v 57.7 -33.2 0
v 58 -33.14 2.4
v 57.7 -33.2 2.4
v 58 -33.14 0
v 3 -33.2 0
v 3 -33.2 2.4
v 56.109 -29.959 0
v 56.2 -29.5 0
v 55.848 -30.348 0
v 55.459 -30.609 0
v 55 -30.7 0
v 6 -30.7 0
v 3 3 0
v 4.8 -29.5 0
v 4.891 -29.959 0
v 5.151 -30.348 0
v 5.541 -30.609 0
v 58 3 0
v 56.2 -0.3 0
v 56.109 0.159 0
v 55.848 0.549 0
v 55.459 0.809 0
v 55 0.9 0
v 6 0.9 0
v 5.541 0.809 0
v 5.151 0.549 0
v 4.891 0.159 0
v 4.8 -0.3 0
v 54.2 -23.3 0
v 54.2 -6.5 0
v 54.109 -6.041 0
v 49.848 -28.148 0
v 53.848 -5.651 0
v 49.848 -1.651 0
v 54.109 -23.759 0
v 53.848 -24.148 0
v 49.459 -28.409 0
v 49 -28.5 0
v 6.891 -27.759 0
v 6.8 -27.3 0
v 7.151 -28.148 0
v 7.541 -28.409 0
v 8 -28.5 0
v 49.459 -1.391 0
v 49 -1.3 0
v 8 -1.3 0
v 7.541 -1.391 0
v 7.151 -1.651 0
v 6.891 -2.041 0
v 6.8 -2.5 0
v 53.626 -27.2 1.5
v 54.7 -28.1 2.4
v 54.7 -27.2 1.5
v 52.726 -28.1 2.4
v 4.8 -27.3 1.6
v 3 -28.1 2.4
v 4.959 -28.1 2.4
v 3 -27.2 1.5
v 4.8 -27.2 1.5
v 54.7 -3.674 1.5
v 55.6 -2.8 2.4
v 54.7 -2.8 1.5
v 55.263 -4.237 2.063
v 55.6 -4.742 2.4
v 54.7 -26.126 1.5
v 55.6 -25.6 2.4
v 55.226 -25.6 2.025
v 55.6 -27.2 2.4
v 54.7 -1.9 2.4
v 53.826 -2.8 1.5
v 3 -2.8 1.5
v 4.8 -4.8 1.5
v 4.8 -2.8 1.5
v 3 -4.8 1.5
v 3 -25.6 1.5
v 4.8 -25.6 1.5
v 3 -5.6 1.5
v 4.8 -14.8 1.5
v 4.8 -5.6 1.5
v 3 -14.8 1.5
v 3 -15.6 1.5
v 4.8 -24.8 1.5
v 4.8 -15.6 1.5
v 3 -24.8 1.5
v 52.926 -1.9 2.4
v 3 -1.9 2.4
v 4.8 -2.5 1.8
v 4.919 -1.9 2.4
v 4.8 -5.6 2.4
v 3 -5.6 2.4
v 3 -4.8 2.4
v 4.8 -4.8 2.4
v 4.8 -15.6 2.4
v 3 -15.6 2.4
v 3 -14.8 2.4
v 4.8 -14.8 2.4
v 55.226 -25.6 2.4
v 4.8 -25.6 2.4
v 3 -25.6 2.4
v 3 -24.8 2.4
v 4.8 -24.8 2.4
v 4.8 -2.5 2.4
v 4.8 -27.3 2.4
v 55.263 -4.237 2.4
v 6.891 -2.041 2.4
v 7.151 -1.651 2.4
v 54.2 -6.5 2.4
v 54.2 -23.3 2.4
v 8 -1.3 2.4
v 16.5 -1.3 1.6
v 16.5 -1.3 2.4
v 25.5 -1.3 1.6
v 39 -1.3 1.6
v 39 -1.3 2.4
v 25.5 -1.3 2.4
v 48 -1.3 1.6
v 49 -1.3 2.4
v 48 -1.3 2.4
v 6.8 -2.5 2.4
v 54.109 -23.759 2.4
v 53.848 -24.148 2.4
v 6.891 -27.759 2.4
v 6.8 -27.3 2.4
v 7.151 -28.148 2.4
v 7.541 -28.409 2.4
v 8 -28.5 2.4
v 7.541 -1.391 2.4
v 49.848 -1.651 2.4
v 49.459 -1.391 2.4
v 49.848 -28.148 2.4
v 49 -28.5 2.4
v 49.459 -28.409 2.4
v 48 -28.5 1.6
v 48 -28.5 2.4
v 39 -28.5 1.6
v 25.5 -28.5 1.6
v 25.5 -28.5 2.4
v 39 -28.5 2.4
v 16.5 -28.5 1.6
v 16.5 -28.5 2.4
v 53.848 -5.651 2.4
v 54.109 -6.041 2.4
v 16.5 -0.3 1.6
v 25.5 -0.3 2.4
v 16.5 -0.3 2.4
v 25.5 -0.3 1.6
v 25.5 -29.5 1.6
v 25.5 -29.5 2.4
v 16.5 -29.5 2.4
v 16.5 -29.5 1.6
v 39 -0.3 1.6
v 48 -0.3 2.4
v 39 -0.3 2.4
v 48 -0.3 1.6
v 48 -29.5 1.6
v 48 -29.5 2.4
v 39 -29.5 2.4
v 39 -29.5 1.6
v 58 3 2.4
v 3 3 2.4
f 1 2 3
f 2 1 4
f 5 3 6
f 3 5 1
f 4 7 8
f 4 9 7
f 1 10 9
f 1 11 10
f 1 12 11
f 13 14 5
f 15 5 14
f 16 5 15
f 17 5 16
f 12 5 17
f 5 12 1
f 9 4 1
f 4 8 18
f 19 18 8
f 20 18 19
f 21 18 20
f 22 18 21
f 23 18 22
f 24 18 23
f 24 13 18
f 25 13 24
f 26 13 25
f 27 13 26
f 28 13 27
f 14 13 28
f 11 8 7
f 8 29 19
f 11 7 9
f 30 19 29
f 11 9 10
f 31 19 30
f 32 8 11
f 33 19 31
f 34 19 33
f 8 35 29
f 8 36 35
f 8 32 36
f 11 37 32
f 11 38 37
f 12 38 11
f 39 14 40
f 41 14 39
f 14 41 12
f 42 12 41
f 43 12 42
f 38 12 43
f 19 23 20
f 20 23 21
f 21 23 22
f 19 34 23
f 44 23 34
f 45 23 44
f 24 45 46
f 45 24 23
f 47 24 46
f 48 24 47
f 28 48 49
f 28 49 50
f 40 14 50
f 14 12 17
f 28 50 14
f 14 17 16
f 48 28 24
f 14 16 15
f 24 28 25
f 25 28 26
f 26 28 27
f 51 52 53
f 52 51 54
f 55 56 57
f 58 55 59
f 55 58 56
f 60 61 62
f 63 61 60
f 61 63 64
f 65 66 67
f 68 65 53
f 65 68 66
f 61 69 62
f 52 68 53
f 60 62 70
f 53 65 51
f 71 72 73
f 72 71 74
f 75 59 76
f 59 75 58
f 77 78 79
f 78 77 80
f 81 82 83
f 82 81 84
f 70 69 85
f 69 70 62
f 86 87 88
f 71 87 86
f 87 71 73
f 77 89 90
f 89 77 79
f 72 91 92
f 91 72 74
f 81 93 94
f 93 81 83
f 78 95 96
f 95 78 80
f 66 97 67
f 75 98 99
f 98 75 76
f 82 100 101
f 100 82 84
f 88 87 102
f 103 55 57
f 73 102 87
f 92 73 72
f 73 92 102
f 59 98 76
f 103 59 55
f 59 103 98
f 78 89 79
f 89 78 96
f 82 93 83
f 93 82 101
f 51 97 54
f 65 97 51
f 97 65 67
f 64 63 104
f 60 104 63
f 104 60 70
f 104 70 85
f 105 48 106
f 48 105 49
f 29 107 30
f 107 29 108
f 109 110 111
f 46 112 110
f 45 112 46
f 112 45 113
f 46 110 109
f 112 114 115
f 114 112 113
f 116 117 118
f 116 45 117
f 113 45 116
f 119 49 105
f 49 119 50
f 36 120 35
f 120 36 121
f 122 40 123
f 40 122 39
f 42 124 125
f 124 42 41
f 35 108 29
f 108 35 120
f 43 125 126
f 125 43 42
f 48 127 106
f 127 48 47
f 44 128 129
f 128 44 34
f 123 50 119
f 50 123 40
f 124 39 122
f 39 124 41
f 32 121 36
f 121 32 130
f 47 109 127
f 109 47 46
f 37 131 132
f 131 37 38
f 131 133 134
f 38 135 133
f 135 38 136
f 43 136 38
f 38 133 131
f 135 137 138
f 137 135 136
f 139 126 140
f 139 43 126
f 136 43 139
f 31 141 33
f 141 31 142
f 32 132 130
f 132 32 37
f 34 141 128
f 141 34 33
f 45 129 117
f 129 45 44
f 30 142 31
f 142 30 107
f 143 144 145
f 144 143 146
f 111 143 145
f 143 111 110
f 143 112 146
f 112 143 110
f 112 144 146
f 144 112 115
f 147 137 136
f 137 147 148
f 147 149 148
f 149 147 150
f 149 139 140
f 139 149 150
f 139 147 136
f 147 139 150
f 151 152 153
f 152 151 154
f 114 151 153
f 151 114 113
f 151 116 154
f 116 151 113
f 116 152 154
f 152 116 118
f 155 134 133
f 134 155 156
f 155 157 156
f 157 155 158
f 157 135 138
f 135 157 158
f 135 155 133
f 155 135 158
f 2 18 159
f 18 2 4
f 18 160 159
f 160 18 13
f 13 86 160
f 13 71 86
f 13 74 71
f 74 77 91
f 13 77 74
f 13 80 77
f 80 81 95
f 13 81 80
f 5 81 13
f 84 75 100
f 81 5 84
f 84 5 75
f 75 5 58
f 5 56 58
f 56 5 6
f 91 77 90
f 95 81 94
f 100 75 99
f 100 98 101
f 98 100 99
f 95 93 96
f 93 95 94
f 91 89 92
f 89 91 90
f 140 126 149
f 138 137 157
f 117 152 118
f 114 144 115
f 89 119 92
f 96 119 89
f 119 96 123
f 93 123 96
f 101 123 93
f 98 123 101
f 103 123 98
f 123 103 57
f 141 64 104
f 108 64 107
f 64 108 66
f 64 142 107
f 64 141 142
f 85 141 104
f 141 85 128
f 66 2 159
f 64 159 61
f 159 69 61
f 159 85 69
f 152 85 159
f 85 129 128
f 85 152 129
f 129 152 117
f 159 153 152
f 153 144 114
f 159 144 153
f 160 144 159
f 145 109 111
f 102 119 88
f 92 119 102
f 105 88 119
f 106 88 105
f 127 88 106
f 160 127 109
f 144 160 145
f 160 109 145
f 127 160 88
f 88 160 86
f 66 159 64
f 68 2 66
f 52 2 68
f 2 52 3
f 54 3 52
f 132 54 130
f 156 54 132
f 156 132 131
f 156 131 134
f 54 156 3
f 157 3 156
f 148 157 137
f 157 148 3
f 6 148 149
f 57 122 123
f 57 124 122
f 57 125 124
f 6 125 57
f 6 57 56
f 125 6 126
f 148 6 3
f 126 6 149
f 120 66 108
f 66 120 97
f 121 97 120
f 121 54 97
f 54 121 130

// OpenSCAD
// file: params.scad
depth=40;

xt60_loc = [ [-47,-depth, 15], [-27,-depth, 15], [-7,-depth, 15] ];
plug_loc = [5,-depth, 1.5];

margin = 0.2;

plug_margin=0.2;

xt60_margin = 0.25;
xt60m_margin = 1;

xt60_thickness = 1.5;
plug_thickness = 2;

case_w_inner = 115+2*margin;
case_h_inner = 30+2*margin;
case_thickness = 3;
case_front_thickness = 1.5;
case_w = case_w_inner + 2*case_thickness;
case_d = depth + 40;
case_h = case_h_inner + 2*case_thickness;

case_dim = [case_w, case_d, case_h];
case_dim_inner = [case_w_inner, case_d, case_h_inner];
case_dim_inside = [(case_w_inner+case_w)/2, case_d, (case_h_inner+case_h)/2];

bump_corner=(case_thickness+margin)*2.5;

front = [0,-1, 0];
bottom_front = [0,-1,-1];

grid_rows = 3;
grid_cols = 11;
grid_pitch = 10;
grid_thickness = .8;
grid_depth=12;
grid_xoff =-2;

screw_thread=3;
screw_hole_r=(screw_thread*.9)/2;
screw_hole_border=2;

mw_lrs_gap_d = 18.5;
// file: xt.scad
e=.001;
$fn=16;

xt60_w=15.7;
xt60_h=8;
xt60f_d = 15.7;
xt60f_base_d = 8;
xt60_combined_d=24.1;
xt60_pitch=7;
xt60_chamfer=2.5;
xt60f_pin_d=5.7;
xt60m_pin_d=4.7;
xt60_pin_w=4.5;
xt60_hole_w=4.5;
xt60_corner=.5;

module xt_pins(width, height, pitch)
{
	for (p=[-pitch/2, pitch/2])
	translate([p,0,0])
	cylinder(h=height, r=width/2);
}

module xt_base(w, h, d, chamfer, corner, margin=0, e=0)
{
	w = w-2*corner;
	h = h-2*corner;
	r = corner+margin;
	translate([0,0,-e])
    linear_extrude(d+2*e)
	hull()
    for (p=[ [w/2,-h/2],
	         [-w/2+chamfer, -h/2],
	         [-w/2, -h/2+chamfer],
	         [-w/2, h/2-chamfer],
	         [-w/2+chamfer, h/2],
	         [w/2, h/2]
	])
	translate(p)
	circle(r);
}

module xt60_combined_shell_cutout(margin=0,f_margin=-1,m_margin=-1, e=0)
{
	b=1; 
	xt_base(xt60_w, xt60_h, xt60_combined_d, xt60_chamfer, xt60_corner, margin, e);
	if (f_margin > margin)
	hull()
	{
		xt_base(xt60_w, xt60_h, xt60f_base_d, xt60_chamfer, xt60_corner, f_margin, e);
		translate([0,0,xt60f_base_d])
		xt_base(xt60_w, xt60_h, f_margin-margin, xt60_chamfer, xt60_corner, margin, e);
	}
	if (m_margin > margin)
	hull()
	{
		translate([0,0,xt60f_base_d-(m_margin-margin)])
		xt_base(xt60_w, xt60_h, m_margin-margin, xt60_chamfer, xt60_corner, margin, e);
		translate([0,0,xt60f_base_d])
		xt_base(xt60_w, xt60_h, xt60_combined_d-xt60f_base_d, xt60_chamfer, xt60_corner, m_margin, e);
	}
}


module xt60_combined_cutout(margin=0,f_margin=-1,m_margin=-1, e=0)
{
	b=1; 
	xt60_combined_shell_cutout(margin,f_margin,m_margin, e);

	translate([0, 0, -xt60f_pin_d-margin])
	xt_pins(xt60_pin_w+margin*2, xt60f_pin_d+b+margin, xt60_pitch);

	translate([0, 0, xt60_combined_d-b])
	xt_pins(xt60_pin_w+margin*2, xt60m_pin_d+b+margin, xt60_pitch);
}

module xt60f_cutout(margin=0,f_margin=-1,m_margin=-1,e=0)
{
	translate([0,0,-xt60f_d])
	xt60_combined_cutout(margin,f_margin,m_margin,e);
}

module xt60f_shell_cutout(margin=0,f_margin=-1,m_margin=-1,e=0)
{
	translate([0,0,-xt60f_d])
	xt60_combined_shell_cutout(margin,f_margin,m_margin,e);
}

module xt60f()
{
	b=1;
	translate([0,0,-xt60f_d])
	{
		xt_base(xt60_w, xt60_h, xt60f_base_d, xt60_chamfer, xt60_corner, 0, e);

		translate([0,0,b])
		difference()
		{
			xt_base(xt60_w-2*xt60_corner, xt60_h-2*xt60_corner, xt60f_d-b, xt60_chamfer, xt60_corner, 0, e);
			xt_pins(xt60_hole_w, xt60f_d, xt60_pitch);

		}

		difference()
		{
			translate([0, 0, -xt60f_pin_d])
			xt_pins(xt60_pin_w, xt60f_pin_d+b, xt60_pitch);

			translate([0, 0, -xt60f_pin_d-b])
			xt_pins(xt60_pin_w*.8, xt60f_pin_d+b, xt60_pitch);
		}
	}
}

xt60f();
%xt60f_cutout(margin=.4,m_margin=1,e=e);
// file: power_shield.scad
use <utils.scad>
use <grid.scad>

use <mw_lrs.scad>
use <powerplug.scad>
use <xt.scad>

$fn=16;
e=.001;


margin=.15;
shield_thickness=1.;
shield_bottom=.6;

border_w=51;
border_h=31.2;
border_d=3.5;

w=47;
h=26.8;
d=22;
chamf=4;

corner=1;

module plug_keepout(margin=0, depth=39, e=0)
{
	$fn=16;

	d = .1+e;
	border_w = border_w-2*corner;
	border_h = border_h-2*corner;
	w = w-2*corner;
	h = h-2*corner;
	r = corner+margin;
	off = 16.5;

	color([.3,.3,.3])
	translate([corner,depth-.1,corner])
	rotate([90,0,0])
	{
		translate([(border_w-w)/2,0,-d])
		linear_extrude(d+e)
		hull()
		for (p=[ [off, 0],
		         [off, h],
		         [w-chamf, h],
		         [w, h-chamf],
		         [w, chamf],
		         [w- chamf, 0],
		])
		translate(p)
		circle(r);
	}
}

module plug_hull(margin, d, e=0)
{
	hull()
	{
		difference()
		{
		plug(margin=margin, extra_depth=5+shield_bottom);
		translate([-10,-10,-10])
		cube([100, 30, 100]);
		}
		plug_keepout(margin=margin, depth=d, e=0);
	}
	plug_keepout(margin=margin, depth=d, e=e);
	
}

inner_w=.8;

module power_shield()
{
color("red")
	union()
	{
	difference()
	{
		union()
		{
			plug_hull(margin=margin+shield_thickness, d=39);
		}
		union()
		{
		plug_hull(margin=margin, d=38, e=2);
		}
	}

	intersection()
	{
		plug_hull(margin=margin+shield_thickness/2, d=38.5, e=2);
		difference()
		{
			union()
			{
				translate([(border_w-w)/2+8.5-inner_w/2, 22, h/2-4-inner_w/2])
				cube([inner_w, 20, 20]);

				translate([(border_w-w)/2+8.5, 22, h/2-4-inner_w/2])
				cube([9., 17, inner_w]);

				translate([(border_w-w)/2+17.5-inner_w/2, 22, h/2-4-inner_w/2])
				cube([inner_w, 17, 10]);

				translate([(border_w-w)/2+15-inner_w/2, 38.4, h/2-4-inner_w/2])
				cube([2.5, shield_bottom, 10]);

				for (y=[0,h])
				for (x=[0,w-2])
				translate([(border_w-w)/2+x-5/sqrt(2)-inner_w/2, 22, y])
				rotate([0,45,0])
				cube([5,1,5]);

			}
			translate([(border_w-w)/2+6.5-inner_w/2, 21, h/2-6/2-inner_w/2])
			cube([5, 2, 5.5]);
		}
	}
}
}

rotate([-90,0,0])
translate([0,-39,0])
{
	power_shield();

	//preview()
	//plug();
}
// file: powerplug.scad
e=0.001;

border_w=51;
border_h=31.2;
border_d=3.5;

w=47;
h=26.8;
d=22;
chamf=4;

corner=1;

module plug(margin=0, extra_depth=0)
{
	$fn=16;

	d = d+extra_depth;
	border_w = border_w-2*corner;
	border_h = border_h-2*corner;
	w = w-2*corner;
	h = h-2*corner;
	r = corner+margin;

	color([.3,.3,.3])
	translate([corner,0,corner])
	rotate([90,0,0])
	{
		translate([0,(h-border_h)/2,0])
		linear_extrude(border_d+margin)
		hull()
		for(p=[ [0, 0],
		        [0, border_h],
		        [border_w, border_h],
		        [border_w, 0]
		])
		translate(p)
		circle(r);

		translate([(border_w-w)/2,0,-d])
		linear_extrude(d+e)
		hull()
		for (p=[ [0, 0],
		         [0, h],
		         [w-chamf, h],
		         [w, h-chamf],
		         [w, chamf],
		         [w- chamf, 0],
		])
		translate(p)
		circle(r);
	}
}

module plug_latch(margin=0)
{
	rotate([90,0,0])
	rotate([0,90,0])
	linear_extrude(9)
	{
		polygon([ [0, -1], [0, 1+margin], [9, margin]]);
	}
}

module plug_latches(margin=0)
{
	for (x=[9.5,32])
	for (y_flip=[-1, 1])
	translate([(border_w-w)/2+x,1.6, h/2])
	scale([1,1,y_flip])
	translate([0,0,h/2])
	plug_latch(margin);
}


module plug_latches_keepout(margin=0, extra_depth=0)
{
	for (x=[9.5,32])
	for (y_flip=[-1, 1])
	translate([(border_w-w)/2+x,1.6, h/2])
	scale([1,1,y_flip])
	translate([0,0,h/2])
	cube([9,d+extra_depth-1.6+e,1+margin]);
}

plug();

plug_latches();

#plug_latches_keepout();

%plug(margin=.3);
// file: mw_lrs.scad
e=.001;
$fn=16;

mw_lrs_w=115;
mw_lrs_h=30;
mw_lrs_d=215;


mw_lrs_holes_pitch_d  = 150;
mw_lrs_holes_pitch_w  = 50;
mw_lrs_holes_height_h = 12.5;

mw_lrs_gap_h = 23;
mw_lrs_gap_d = 18.5;

mw_lrs_case_thickness = 1.6;

m4_thread = 4;

mw_lrs_screw_terminal_x=8.5;
mw_lrs_screw_terminal_w=88;
mw_lrs_screw_terminal_d=15;
mw_lrs_screw_terminal_h=15;
mw_lrs_screw_terminal_pitch = 9.5;
mw_lrs_screw_terminal_gap_w = 8;
mw_lrs_screw_terminal_gap_d = 14;
mw_lrs_screw_terminal_gap_z = 7;
mw_lrs_screw_terminal_gap_h = 6;

module mw_lrs_side_holes()
{
	translate( [0, 0, mw_lrs_holes_height_h] )
	for( r = [ 0, 180 ] )
	rotate( [0, r, 0] )
	for( y = [ (mw_lrs_d-mw_lrs_holes_pitch_d)/2, (mw_lrs_d+mw_lrs_holes_pitch_d)/2 ] )
	translate( [-mw_lrs_w/2, y, 0] )
	rotate( [0, 90, 0] )
	children();
}

module mw_lrs_bottom_holes()
{
	for( x = [ -mw_lrs_holes_pitch_w/2, mw_lrs_holes_pitch_w/2 ] )
	for( y = [ (mw_lrs_d-mw_lrs_holes_pitch_d)/2, (mw_lrs_d+mw_lrs_holes_pitch_d)/2 ] )
	translate( [x, y, 0] )
	children();
}

module mw_lrs_holes()
{
	mw_lrs_side_holes() children();
	mw_lrs_bottom_holes() children();
}

module mw_lrs_screw_terminal()
{
	colors = [
		"red", "red", "red",
		"black", "black", "black",
		"green", "blue", "brown",
	];
	b=1;
	translate([mw_lrs_screw_terminal_x, mw_lrs_case_thickness, mw_lrs_h-mw_lrs_gap_h-e])
	{
		difference()
		{
			translate([-mw_lrs_screw_terminal_w/2, 0, 0])
			cube([mw_lrs_screw_terminal_w, mw_lrs_screw_terminal_d, mw_lrs_screw_terminal_h+e]);
			for (i=[0:8])
			translate([(i-4)*9.5-mw_lrs_screw_terminal_gap_w/2, -b, mw_lrs_screw_terminal_gap_z])
			cube([mw_lrs_screw_terminal_gap_w, mw_lrs_screw_terminal_gap_d+b, mw_lrs_screw_terminal_gap_h]);
		}

		for (i=[0:8])
		translate([(i-4)*9.5-mw_lrs_screw_terminal_gap_w/2, -0, mw_lrs_screw_terminal_h])
		color(colors[i])
		cube([mw_lrs_screw_terminal_gap_w,mw_lrs_screw_terminal_gap_d,.1]);

	}
}

module mw_lrs_vents()
{
	b=1;
	hole=4;
	for (y = [36, 44, 52])
	for (i = [-1, 1])
	hull()
	{
		translate([i*(19/2+hole/2), y, mw_lrs_h-mw_lrs_case_thickness-b])
			cylinder(mw_lrs_case_thickness+2*b, r=hole/2);

		translate([i*(19/2+hole/2+33), y, mw_lrs_h-mw_lrs_case_thickness-b])
			cylinder(mw_lrs_case_thickness+2*b, r=hole/2);
	}

	translate([-mw_lrs_w/2+36.7, mw_lrs_d-47.45,mw_lrs_h-mw_lrs_case_thickness-b])
		cylinder(mw_lrs_case_thickness+2*b, r=50/2);
}

module mw_lrs_vents_keepout(h, margin=0)
{
	b=1;
	hole=4;
	hull()
	for (y = [36, 44, 52])
	for (i = [-1, 1])
	{
		translate([i*(19/2+hole/2), y, mw_lrs_h-b])
			cylinder(h+b, r=hole/2+margin);

		translate([i*(19/2+hole/2+33), y, mw_lrs_h-b])
			cylinder(h+b, r=hole/2+margin);
	}

	translate([-mw_lrs_w/2+36.7, mw_lrs_d-47.45,mw_lrs_h-b])
		cylinder(h+b, r=50/2);
}

module mw_lrs()
{
	b=1; 

	union()
	{
		color([.75,.75,.75])
		difference()
		{

			translate([-mw_lrs_w/2,0,0])
			cube([mw_lrs_w, mw_lrs_d, mw_lrs_h]);

			union()
			{
				translate([-mw_lrs_w/2+mw_lrs_case_thickness, -b, mw_lrs_h-mw_lrs_gap_h] )
				cube( [ mw_lrs_w-2*mw_lrs_case_thickness, b+mw_lrs_gap_d, mw_lrs_gap_h+b] );

				translate([-mw_lrs_w/2+mw_lrs_case_thickness, mw_lrs_gap_d-e, mw_lrs_h-mw_lrs_gap_h] )
				cube( [ mw_lrs_w-2*mw_lrs_case_thickness, mw_lrs_d-mw_lrs_gap_d+e-mw_lrs_case_thickness, mw_lrs_gap_h-mw_lrs_case_thickness] );

				mw_lrs_vents();

				mw_lrs_holes()
				{
					translate([0,0,-e])
					cylinder(h=5+e, r=m4_thread/2);
				}
			}
		}
		color([.1, .3, .1])
		translate([-mw_lrs_w/2+mw_lrs_case_thickness, 0, mw_lrs_h-mw_lrs_gap_h-e])
		cube([mw_lrs_w-2*mw_lrs_case_thickness, mw_lrs_d-mw_lrs_case_thickness, e+.1]);
		mw_lrs_screw_terminal();
	}
}

module mw_lrs_keepout(margin=0, e=0)
{
	b=1; 

	w=mw_lrs_w+margin*2;
	d=mw_lrs_d+margin*2;
	h=mw_lrs_h+margin*2;

	translate([-w/2,-margin,-margin])
	cube([w, d, h]);
}

mw_lrs();
%mw_lrs_keepout(margin=.4);

module m4_hole(h, margin=0)
{
	translate([0,0,-h])
	cylinder(h=h+e, r=(m4_thread+margin)/2);
}

%mw_lrs_holes()
m4_hole(10);
// file: grid.scad
module bars(width, height, n, pitch, bar_width)
{
	for (i=[0:n-1])
		translate([0, (i-(n-1)/2)*pitch-bar_width/2, 0])
			cube([width, bar_width, height]);
}

module grid(width, depth, height, n_rows, n_cols, pitch=10, x_pitch=-1, y_pitch=-1, bar_width=1, x_bar_width=-1, y_bar_width=-1)
{
	x_pitch = x_pitch > 0 ? x_pitch : pitch;
	y_pitch = y_pitch > 0 ? y_pitch : pitch;
	x_bar_width = x_bar_width > 0 ? x_bar_width : bar_width;
	y_bar_width = y_bar_width > 0 ? y_bar_width : bar_width;

	translate( [0, depth/2, 0] )
		bars( width, height, n_rows, y_pitch, y_bar_width );
	translate( [width/2, 0, 0] )
		rotate([0,0,90])
			bars( depth, height, n_cols, x_pitch, x_bar_width) ;
}

grid(100, 50, 1, 4, 8);
// file: utils.scad
module xz_toward_y()
{
	scale([1, 1, -1])
	rotate([-90,0,0])
	children();
}

module anchor(dim, anchor=[0,0,0])
{
	translate([-(1+anchor.x)*dim.x/2, -(1+anchor.y)*dim.y/2, -(1+anchor.z)*dim.z/2])
	children();
}

module block(dim, anchor=[0,0,0])
{
	anchor(dim, anchor)
	cube(dim);
}

module rounded_block_z(dim, anchor=[0,0,0], r=0)
{
	anchor(dim, anchor)
	linear_extrude(dim.z)
	hull()
	for (p=[ [r,r], [dim.x-r, r], [dim.x-r, dim.y-r], [r, dim.y-r] ] )
	translate(p)
	circle(r);
}

module rounded_block_y(dim, anchor=[0,0,0], r=0)
{
	anchor(dim, anchor)
	xz_toward_y()
	linear_extrude(dim.y)
	hull()
	for (p=[ [r,r], [dim.x-r, r], [dim.x-r, dim.z-r], [r, dim.z-r] ] )
	translate(p)
	circle(r);
}

module chamfer_block_y(dim, anchor=[0,0,0], r=0)
{
	anchor(dim, anchor)
	hull()
	{
		translate([r,0,0])
		cube([dim.x-r*2, dim.y, dim.z]);

		translate([0,0,r])
		cube([dim.x, dim.y, dim.z-r*2]);
	}
}

module chamfer_block_z(dim, anchor=[0,0,0], r=0)
{
	anchor(dim, anchor)
	hull()
	{
		translate([r,0,0])
		cube([dim.x-r*2, dim.y, dim.z]);

		translate([0,r,0])
		cube([dim.x, dim.y-r*2, dim.z]);
	}
}

module chamfer_block(dim, anchor=[0,0,0], r=0)
{
	anchor(dim, anchor)
	hull()
	{
		translate([r,r,0])
		cube([dim.x-r*2, dim.y-r*2, dim.z]);

		translate([r,0,r])
		cube([dim.x-r*2, dim.y, dim.z-r*2]);

		translate([0,r,r])
		cube([dim.x, dim.y-r*2, dim.z-r*2]);
	}
}

module at_grid(c,r,pitch,anchor=[0,0,0])
{
	dim=[(c-1)*pitch,(r-1)*pitch,1];
	a=[anchor[0],anchor[1],-1];
	anchor(dim,a)
	for(x=[0:c-1])
	for(y=[0:r-1])
	translate([x*pitch,y*pitch,0])
	children();
}

module ngon_outer(n,h,r)
{
	cylinder(h,r=r, $fn=n);
}

module ngon_inner(n,h,r)
{
	a=360/n/2;
	r_cyl = r/cos(a);
	rotate([0,0,a])
	cylinder(h,r=r_cyl, $fn=n);
}


module ngon_cone_outer(n,h,r1,r2)
{
	cylinder(h,r1=r1,r2=r2, $fn=n);
}

module ngon_cone_inner(n,h,r1,r2)
{
	a=360/n/2;
	r1_cyl = r1/cos(a);
	r2_cyl = r2/cos(a);
	rotate([0,0,a])
	cylinder(h,r1=r1_cyl,r2=r2_cyl, $fn=n);
}

module preview()
{
	if ($preview)
	children();
}
// file: cover.scad
use <utils.scad>
use <grid.scad>

use <mw_lrs.scad>
use <powerplug.scad>
use <power_shield.scad>
use <xt.scad>

include <params.scad>

$fn=16;
e=.001;

module cutout()
{
	mw_lrs_keepout(margin=margin);

	for ( p = xt60_loc )
	translate(p)
	translate([0,0,0])
	rotate([90,90,0])
	xt60f_cutout(margin=xt60_margin,m_margin=xt60m_margin,e=e);

	translate(plug_loc)
	{
	plug(margin=plug_margin, , extra_depth=-2);
	plug_latches_keepout(margin=plug_margin);
	}

	mw_lrs_holes()
	m4_hole(10, margin=.25);

	mw_lrs_vents_keepout(h=10, margin=1);
}

module shell()
{
	difference()
	{
		translate([0, -depth, -case_thickness-margin])
		rounded_block_y(case_dim, bottom_front, r=case_thickness);

		translate([0, -depth+case_front_thickness, -margin])
		chamfer_block([case_w_inner, case_d, case_h_inner], bottom_front, r=case_thickness);
	}
}

module round_corner(w)
{
	difference()
	{
		rotate([90,0,0])
		cylinder(w, r1=w, r2=0);
		union()
		{
			translate([-w-e,-w,-w])
			cube([w,w*2,w*2]);

			translate([-w,-w,-w-e])
			cube([w*2,w*2,w]);
		}
	}
}


module bump_corner(w)
{
	round_corner(w, $fn=4);
}

module front_grid()
{
	translate([0, -depth+e,-case_thickness/2])
	xz_toward_y()
	anchor(case_dim_inside, bottom_front)
	grid(case_dim_inside.x, case_dim_inside.z, case_thickness+grid_depth-e, grid_rows, grid_cols, pitch=grid_pitch, bar_width=grid_thickness, x_off=grid_xoff, y_off=0);
}

module at_panel_screws()
{
	for (x=[ -12, -42 ])
	for (z=[ 5, 25 ])
	translate([x,-depth, z])
	children();
}


module cover()
{
	difference()
	{
		union()
		{
			shell();
	
			intersection()
			{
				union()
				{
					front_grid();
					translate(plug_loc)
					plug(margin=plug_margin+plug_thickness, extra_depth=-2);
	
					for ( p = xt60_loc )
					translate(p)
					rotate([90,90,0])
					xt60f_shell_cutout(margin=  xt60_margin+xt60_thickness,
					                 m_margin=xt60m_margin+xt60_thickness);

					at_panel_screws()
					translate([0,-e, 0])
					xz_toward_y()
					linear_extrude(15.7+e)
					circle(screw_hole_r+screw_hole_border);

				}
				translate([0, -depth+e, case_h_inner/2])
				block(case_dim_inside, front);
			}

			translate([0,-margin,case_h_inner/2-margin])
			for (x=[1, -1])
			for (z=[1, -1])
			scale([x, 1, z])
			translate([-case_w_inner/2, 0,-case_h_inner/2])
			bump_corner(bump_corner);
		}
		union()
		{
			cutout();

			at_panel_screws()
			translate([0,case_thickness+e, 0])
			xz_toward_y()
			linear_extrude(15.7)
			circle(screw_hole_r);
		}
	}
}


module print_orientation()
{
	rotate([90,0,0])
	translate([0,depth,0])
	children();
}


print_orientation()
preview()
{
	mw_lrs();

	for ( p = xt60_loc )
	translate(p)
	rotate([90,90,0])
	xt60f();

	translate(plug_loc)
	plug();

	translate(plug_loc)
	power_shield();
}

print_orientation()
#cover();
// main file
use <cover.scad>

print_orientation()
color("red")
intersection()
{
	translate([3,-40,-3])
	cube([55, 2.4, 40]);
	cover();
}
